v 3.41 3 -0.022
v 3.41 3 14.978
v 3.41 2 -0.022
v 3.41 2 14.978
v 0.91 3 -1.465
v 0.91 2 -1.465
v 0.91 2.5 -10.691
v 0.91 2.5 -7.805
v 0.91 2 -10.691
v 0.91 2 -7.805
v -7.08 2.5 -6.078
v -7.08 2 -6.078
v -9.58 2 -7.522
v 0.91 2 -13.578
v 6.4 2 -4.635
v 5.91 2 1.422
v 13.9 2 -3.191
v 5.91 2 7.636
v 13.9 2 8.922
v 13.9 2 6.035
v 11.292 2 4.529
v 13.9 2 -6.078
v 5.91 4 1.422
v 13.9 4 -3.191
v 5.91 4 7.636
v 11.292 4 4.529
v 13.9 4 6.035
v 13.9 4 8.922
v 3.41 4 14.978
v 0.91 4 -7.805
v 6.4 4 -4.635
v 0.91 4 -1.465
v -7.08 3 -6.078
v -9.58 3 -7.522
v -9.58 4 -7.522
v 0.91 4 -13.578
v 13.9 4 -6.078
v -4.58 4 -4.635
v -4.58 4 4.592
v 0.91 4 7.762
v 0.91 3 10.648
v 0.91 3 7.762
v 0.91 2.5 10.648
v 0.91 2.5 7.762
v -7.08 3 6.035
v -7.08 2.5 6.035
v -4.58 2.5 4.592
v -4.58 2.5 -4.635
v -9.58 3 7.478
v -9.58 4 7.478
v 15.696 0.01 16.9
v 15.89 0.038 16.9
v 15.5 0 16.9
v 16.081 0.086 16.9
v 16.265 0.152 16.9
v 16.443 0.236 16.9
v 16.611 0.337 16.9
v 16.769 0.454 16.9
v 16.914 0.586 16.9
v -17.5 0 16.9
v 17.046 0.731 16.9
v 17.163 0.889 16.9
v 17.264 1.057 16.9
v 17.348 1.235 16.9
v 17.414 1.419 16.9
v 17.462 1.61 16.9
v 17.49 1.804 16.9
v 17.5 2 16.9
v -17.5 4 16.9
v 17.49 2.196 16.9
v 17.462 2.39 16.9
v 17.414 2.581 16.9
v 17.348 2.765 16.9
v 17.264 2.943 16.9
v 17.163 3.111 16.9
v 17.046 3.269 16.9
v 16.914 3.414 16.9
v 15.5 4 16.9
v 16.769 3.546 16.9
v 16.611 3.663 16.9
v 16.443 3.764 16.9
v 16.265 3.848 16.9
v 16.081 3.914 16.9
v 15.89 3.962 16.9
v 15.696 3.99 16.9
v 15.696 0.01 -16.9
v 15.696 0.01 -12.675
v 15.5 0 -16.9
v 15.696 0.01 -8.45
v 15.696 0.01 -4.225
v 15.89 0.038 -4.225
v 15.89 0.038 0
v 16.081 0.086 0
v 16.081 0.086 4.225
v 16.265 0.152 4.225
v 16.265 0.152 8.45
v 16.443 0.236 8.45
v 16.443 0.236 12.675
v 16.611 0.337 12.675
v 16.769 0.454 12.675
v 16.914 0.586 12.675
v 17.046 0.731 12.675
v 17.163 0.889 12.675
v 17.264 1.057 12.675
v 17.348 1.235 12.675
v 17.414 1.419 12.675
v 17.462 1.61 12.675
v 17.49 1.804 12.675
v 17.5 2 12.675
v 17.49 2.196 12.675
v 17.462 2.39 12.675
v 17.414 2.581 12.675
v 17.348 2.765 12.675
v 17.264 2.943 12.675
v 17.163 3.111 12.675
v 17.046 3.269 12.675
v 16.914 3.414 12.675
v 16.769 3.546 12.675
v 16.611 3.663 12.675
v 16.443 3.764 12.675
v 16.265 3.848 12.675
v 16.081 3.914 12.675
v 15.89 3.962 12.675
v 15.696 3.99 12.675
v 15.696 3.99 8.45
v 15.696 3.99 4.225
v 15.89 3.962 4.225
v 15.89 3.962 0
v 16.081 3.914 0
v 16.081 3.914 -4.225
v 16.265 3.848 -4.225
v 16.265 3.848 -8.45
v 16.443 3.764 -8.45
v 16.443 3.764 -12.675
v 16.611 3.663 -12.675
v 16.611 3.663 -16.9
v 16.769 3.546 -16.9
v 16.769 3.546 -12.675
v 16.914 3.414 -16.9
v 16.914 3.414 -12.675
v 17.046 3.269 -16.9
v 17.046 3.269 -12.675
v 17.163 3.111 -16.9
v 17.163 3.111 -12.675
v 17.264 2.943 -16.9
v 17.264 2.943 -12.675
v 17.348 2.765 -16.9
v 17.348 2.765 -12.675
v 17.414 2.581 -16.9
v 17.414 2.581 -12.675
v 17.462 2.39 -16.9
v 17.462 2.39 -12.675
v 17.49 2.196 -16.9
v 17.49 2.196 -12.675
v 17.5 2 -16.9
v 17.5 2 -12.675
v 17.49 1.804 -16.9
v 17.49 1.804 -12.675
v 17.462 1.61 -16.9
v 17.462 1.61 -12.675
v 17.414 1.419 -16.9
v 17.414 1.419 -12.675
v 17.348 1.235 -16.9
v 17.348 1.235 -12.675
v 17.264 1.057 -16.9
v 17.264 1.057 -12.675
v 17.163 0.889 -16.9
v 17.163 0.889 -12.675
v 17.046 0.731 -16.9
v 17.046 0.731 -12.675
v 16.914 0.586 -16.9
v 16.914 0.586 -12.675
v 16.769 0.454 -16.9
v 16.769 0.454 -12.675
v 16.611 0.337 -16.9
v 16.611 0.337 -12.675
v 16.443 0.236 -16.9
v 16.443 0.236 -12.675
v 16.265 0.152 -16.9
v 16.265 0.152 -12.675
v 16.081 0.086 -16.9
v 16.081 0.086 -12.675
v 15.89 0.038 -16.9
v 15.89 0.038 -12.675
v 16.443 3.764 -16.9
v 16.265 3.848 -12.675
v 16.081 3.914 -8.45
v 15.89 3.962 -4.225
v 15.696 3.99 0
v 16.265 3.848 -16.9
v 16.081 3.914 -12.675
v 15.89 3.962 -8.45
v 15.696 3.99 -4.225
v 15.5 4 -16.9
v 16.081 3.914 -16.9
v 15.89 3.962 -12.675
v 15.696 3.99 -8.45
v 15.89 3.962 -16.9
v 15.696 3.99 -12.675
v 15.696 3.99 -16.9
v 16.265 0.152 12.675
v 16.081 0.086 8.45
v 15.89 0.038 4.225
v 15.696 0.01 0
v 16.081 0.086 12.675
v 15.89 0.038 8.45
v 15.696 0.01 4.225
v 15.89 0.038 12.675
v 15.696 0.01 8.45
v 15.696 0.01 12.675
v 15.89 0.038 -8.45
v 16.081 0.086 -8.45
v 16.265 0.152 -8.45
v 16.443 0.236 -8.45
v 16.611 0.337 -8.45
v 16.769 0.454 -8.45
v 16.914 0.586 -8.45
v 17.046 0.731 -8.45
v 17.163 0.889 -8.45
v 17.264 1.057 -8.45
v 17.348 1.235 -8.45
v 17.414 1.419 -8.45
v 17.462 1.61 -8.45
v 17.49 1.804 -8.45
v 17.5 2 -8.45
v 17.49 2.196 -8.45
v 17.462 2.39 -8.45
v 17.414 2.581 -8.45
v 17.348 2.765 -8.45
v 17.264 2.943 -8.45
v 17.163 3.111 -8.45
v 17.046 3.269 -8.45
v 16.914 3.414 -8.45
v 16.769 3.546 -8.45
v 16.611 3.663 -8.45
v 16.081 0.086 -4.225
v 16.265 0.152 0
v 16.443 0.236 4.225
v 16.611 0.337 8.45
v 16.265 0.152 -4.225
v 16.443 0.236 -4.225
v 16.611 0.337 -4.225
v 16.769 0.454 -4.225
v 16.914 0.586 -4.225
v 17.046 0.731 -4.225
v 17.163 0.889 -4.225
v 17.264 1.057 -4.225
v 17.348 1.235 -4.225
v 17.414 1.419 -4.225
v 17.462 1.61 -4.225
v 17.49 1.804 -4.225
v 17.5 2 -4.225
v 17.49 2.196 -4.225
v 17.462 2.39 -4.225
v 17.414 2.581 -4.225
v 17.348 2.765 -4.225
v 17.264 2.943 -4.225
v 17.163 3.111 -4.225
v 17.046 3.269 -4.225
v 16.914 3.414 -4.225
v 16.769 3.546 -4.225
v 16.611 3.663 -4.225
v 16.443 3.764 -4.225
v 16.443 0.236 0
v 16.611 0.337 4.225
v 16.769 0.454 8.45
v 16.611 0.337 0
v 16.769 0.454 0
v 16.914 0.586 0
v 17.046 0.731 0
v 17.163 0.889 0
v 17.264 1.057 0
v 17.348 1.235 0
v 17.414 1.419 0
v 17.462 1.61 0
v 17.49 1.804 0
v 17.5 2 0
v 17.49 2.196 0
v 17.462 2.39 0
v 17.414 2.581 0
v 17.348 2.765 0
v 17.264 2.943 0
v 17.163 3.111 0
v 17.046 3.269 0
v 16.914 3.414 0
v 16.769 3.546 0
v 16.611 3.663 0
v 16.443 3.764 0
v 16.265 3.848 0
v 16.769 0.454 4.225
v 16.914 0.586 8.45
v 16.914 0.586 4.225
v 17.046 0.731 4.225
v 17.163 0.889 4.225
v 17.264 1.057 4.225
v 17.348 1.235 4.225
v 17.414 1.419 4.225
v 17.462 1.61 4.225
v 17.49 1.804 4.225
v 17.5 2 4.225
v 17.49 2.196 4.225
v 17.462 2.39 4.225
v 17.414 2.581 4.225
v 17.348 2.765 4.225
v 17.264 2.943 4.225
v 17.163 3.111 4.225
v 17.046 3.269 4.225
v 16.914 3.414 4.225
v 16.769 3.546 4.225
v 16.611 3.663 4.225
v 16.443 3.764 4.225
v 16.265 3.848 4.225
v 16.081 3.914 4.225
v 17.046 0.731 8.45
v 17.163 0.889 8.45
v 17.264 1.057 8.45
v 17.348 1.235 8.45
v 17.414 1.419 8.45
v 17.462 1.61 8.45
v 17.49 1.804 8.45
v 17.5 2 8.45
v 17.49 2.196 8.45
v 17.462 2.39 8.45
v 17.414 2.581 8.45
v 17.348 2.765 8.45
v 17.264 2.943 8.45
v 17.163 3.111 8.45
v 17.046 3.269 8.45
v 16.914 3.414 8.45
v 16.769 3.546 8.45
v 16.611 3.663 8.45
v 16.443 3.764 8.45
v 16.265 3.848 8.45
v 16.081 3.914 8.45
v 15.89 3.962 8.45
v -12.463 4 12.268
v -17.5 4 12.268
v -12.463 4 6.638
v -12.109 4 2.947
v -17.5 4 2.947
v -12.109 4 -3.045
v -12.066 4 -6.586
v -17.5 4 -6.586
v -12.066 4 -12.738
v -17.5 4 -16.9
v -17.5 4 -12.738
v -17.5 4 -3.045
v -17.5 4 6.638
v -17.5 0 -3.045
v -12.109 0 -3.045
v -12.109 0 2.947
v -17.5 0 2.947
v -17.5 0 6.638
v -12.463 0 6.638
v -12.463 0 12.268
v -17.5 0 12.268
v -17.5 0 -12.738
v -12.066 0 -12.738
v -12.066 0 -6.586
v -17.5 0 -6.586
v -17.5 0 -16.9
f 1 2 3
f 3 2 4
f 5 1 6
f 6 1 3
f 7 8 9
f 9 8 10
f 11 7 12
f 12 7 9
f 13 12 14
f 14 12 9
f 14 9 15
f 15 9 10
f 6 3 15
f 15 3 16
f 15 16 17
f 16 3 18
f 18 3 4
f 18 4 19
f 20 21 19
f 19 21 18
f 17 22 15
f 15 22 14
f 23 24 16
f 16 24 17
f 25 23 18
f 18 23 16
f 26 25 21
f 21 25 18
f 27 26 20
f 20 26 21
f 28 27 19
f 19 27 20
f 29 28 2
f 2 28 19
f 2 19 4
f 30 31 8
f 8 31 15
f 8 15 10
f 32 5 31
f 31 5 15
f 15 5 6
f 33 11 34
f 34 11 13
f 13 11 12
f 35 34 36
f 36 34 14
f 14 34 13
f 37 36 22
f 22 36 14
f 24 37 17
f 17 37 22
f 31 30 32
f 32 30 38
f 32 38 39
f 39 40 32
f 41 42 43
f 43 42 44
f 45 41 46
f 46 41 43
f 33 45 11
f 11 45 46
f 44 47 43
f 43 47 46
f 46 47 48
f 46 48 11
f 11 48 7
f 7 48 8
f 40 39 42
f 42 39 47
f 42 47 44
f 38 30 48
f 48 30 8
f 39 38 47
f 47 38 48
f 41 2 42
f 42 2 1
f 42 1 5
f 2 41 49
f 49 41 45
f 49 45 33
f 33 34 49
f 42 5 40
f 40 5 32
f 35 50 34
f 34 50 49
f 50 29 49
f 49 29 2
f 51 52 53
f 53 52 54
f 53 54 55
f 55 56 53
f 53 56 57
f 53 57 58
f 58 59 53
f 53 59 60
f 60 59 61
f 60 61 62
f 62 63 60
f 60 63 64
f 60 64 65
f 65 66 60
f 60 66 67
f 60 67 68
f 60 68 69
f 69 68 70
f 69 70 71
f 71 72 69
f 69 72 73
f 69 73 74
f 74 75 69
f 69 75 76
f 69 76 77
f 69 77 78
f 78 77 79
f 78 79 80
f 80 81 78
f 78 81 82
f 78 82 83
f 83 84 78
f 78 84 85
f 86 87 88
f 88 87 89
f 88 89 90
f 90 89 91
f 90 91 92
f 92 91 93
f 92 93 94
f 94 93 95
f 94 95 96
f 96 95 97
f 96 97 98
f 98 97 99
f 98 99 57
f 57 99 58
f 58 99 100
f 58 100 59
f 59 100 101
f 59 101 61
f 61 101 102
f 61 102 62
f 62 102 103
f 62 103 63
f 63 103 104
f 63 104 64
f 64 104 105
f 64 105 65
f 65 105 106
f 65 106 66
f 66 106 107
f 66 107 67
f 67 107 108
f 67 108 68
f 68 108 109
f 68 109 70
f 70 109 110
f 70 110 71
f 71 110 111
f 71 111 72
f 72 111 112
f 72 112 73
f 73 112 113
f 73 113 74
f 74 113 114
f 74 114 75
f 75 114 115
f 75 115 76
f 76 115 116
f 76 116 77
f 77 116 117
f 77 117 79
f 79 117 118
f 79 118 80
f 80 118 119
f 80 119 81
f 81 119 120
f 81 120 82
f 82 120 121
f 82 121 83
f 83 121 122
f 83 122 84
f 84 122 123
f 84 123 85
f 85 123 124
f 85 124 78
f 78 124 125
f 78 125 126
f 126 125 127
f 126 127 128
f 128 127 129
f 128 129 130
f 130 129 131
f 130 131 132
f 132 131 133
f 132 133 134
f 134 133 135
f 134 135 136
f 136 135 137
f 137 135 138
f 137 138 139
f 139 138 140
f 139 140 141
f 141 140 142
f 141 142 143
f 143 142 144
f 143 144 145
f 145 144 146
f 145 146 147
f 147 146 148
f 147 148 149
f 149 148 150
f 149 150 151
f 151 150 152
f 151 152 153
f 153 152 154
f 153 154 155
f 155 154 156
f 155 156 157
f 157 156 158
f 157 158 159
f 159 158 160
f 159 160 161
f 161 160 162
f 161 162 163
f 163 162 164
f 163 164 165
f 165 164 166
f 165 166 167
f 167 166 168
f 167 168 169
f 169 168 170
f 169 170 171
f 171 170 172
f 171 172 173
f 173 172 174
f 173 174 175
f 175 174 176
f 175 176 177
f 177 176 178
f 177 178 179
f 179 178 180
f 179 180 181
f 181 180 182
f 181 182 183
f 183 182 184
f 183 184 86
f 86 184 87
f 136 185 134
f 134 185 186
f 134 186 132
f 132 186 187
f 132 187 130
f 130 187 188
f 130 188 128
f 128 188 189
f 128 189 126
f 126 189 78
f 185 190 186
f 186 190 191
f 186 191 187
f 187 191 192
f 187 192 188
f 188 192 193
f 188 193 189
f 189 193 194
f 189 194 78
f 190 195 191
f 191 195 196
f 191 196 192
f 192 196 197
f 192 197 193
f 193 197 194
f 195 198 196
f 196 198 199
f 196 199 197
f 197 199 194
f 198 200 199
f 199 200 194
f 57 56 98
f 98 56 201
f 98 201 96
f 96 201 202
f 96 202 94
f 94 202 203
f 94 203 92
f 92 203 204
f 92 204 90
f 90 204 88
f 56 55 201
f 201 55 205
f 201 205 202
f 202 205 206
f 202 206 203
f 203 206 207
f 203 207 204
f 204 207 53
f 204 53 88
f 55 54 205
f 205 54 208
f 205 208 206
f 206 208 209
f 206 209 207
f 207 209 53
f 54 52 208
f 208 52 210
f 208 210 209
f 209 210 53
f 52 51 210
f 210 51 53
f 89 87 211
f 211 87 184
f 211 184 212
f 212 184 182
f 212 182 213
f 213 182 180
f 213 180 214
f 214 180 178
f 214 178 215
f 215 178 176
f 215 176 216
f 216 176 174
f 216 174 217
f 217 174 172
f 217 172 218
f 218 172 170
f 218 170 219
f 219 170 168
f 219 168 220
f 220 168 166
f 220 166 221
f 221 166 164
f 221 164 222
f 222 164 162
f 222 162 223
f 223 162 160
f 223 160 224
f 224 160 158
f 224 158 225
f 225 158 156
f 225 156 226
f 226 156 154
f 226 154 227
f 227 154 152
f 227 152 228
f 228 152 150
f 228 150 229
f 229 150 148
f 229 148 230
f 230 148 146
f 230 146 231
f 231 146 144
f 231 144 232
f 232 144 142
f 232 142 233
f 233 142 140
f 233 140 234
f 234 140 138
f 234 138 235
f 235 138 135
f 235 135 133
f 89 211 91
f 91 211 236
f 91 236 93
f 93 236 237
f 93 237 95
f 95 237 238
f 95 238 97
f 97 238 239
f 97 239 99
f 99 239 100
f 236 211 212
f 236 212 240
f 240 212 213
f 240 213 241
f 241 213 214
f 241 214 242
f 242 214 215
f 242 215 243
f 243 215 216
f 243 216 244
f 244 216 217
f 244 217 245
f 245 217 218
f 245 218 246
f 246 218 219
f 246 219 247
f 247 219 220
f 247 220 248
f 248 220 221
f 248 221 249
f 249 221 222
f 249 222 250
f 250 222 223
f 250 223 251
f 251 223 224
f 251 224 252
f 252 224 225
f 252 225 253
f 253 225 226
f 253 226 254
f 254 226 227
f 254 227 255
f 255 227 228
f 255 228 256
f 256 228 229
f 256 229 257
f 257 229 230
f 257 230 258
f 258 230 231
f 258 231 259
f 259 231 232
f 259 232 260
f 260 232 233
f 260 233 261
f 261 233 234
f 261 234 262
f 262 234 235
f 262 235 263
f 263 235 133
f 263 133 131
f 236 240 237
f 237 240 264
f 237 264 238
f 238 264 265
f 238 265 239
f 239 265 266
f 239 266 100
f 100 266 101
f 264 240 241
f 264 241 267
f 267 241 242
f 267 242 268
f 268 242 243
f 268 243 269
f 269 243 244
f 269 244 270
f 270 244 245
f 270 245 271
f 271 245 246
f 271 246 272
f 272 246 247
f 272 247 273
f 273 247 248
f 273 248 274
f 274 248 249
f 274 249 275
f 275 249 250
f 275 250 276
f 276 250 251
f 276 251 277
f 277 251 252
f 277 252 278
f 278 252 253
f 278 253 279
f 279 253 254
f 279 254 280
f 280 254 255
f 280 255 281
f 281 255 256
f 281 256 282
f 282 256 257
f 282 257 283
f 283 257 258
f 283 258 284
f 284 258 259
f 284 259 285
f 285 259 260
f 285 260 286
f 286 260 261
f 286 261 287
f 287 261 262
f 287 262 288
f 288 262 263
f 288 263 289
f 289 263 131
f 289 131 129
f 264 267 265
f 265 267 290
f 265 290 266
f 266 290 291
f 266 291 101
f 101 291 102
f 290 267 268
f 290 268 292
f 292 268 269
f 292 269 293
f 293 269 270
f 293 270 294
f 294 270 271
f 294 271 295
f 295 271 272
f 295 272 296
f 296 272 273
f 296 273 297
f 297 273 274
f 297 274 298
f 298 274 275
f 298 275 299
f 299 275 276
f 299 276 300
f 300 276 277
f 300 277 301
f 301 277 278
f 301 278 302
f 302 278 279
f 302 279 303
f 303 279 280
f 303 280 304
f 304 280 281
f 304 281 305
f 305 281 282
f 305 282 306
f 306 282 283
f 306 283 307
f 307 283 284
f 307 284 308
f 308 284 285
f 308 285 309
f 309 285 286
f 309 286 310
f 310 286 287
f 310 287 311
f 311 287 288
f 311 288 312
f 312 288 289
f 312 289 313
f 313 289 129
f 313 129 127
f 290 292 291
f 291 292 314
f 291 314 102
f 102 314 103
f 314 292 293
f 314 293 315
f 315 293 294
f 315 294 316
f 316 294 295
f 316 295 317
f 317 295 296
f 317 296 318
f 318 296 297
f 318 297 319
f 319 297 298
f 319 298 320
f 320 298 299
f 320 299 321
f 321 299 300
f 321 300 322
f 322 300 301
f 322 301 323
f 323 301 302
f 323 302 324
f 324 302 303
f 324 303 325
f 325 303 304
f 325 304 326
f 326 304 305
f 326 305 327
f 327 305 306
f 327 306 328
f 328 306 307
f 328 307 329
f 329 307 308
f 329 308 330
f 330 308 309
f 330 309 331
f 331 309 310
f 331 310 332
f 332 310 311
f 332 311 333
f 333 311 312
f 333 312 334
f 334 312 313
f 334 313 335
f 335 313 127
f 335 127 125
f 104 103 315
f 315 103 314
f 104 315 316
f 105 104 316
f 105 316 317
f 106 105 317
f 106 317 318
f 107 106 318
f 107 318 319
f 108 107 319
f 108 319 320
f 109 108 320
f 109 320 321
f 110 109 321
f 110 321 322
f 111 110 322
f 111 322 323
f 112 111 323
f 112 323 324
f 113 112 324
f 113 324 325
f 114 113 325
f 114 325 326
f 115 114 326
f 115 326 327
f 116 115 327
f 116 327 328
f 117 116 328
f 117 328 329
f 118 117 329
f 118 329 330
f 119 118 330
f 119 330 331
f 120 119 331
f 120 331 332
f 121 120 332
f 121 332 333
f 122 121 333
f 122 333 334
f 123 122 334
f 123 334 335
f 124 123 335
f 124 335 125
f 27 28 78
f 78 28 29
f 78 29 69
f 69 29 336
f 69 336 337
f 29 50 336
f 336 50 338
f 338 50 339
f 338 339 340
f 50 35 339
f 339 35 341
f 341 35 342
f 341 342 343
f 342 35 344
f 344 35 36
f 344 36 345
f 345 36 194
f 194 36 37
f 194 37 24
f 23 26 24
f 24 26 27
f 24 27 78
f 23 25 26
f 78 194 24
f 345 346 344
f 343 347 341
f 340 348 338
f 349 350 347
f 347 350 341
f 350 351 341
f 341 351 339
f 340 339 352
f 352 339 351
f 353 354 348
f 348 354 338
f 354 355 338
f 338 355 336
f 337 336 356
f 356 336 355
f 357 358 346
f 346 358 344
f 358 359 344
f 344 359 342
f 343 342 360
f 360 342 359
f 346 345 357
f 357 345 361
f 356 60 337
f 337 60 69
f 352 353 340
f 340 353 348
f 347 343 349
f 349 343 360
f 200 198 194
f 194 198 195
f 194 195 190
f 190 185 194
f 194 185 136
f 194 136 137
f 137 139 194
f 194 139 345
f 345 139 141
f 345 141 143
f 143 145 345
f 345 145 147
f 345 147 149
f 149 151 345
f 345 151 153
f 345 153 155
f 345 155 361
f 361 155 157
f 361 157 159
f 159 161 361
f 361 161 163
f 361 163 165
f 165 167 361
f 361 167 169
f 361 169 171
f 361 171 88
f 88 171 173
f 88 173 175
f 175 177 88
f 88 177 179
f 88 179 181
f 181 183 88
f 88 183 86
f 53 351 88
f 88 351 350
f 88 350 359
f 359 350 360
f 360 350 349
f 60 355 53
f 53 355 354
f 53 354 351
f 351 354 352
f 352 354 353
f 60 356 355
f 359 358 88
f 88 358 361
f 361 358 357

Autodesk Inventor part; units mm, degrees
ref_plane "YZ Plane" through (0, 0, 0) normal (1, 0, 0) x (0, 1, 0)
ref_plane "XZ Plane" through (0, 0, 0) normal (0, 1, 0) x (-1, 0, 0)
ref_plane "XY Plane" through (0, 0, 0) normal (0, 0, 1) x (1, 0, 0)
sketch "Sketch1" plane through (0, 0, 0) normal (0, 1, 0) x (-1, 0, 0)
  line L0 (-17.5, 16.9) -> (17.5, 16.9)
  line L1 (17.5, 16.9) -> (17.5, -16.9)
  line L2 (17.5, -16.9) -> (-17.5, -16.9)
  line L3 (-17.5, -16.9) -> (-17.5, 16.9)
  line L4 (-17.5, 16.9) -> (17.5, -16.9) construction
  line L5 (17.5, 16.9) -> (-17.5, -16.9) construction
  point P0 (0, 0)
sketch "Sketch2" plane through (0, 0, 0) normal (0, 1, 0) x (-1, 0, 0)
  line L0 (980.2308, 0) -> (977.7308, 0)
  line L1 (17.4632, -0.049) -> (15.105, -0.049)
  line L2 (12.1095, 2.9465) -> (18.1005, 2.9465)
  line L3 (18.1005, 2.9465) -> (18.1005, -3.0446)
  line L4 (18.1005, -3.0446) -> (12.1095, -3.0446)
  line L5 (12.1095, -3.0446) -> (12.1095, 2.9465)
  line L6 (12.1095, 2.9465) -> (18.1005, -3.0446) construction
  line L7 (18.1005, 2.9465) -> (12.1095, -3.0446) construction
  line L8 (12.4632, 12.2678) -> (18.1005, 12.2678)
  line L9 (18.1005, 12.2678) -> (18.1005, 6.638)
  line L10 (18.1005, 6.638) -> (12.4632, 6.638)
  line L11 (12.4632, 6.638) -> (12.4632, 12.2678)
  line L12 (12.4632, 12.2678) -> (18.1005, 6.638) construction
  line L13 (12.0658, -6.5864) -> (18.1005, -6.5864)
  line L14 (18.1005, -6.5864) -> (18.1005, -12.7382)
  line L15 (18.1005, -12.7382) -> (12.0658, -12.7382)
  line L16 (12.0658, -12.7382) -> (12.0658, -6.5864)
  line L17 (12.0658, -6.5864) -> (18.1005, -12.7382) construction
  line L18 (18.1005, -6.5864) -> (12.0658, -12.7382) construction
  point P0 (0, 0)
  dimension "d2" = 2.5
extrude "Extrusion1" add sketch "Sketch1" along normal blind 4
extrude "Extrusion2" cut sketch "Sketch2" along normal blind 4
fillet "Fillet3" radius 2 1 edges at (17.5, 4, 0)
fillet "Fillet4" radius 2 1 edges at (17.5, 0, 0)
sketch "Sketch3" plane through (0, 4, 0) normal (0, 1, 0) x (1, 0, 0)
  line L0 (-17.5, 3.0446) -> (-12.1095, 3.0446) construction
  line L1 (-12.1095, 3.0446) -> (-12.1095, -2.9465) construction
  line L2 (-12.1095, -2.9465) -> (-17.5, -2.9465) construction
  line L3 (-17.5, -2.9465) -> (-17.5, -6.638) construction
  line L4 (-17.5, -6.638) -> (-12.4632, -6.638) construction
  line L5 (-12.4632, -6.638) -> (-12.4632, -12.2678) construction
  line L6 (-12.4632, -12.2678) -> (-17.5, -12.2678) construction
  line L7 (-17.5, -12.2678) -> (-17.5, -16.9) construction
  line L8 (-17.5, -16.9) -> (15.5, -16.9) construction
  line L9 (15.5, 16.9) -> (-17.5, 16.9) construction
  line L10 (-17.5, 16.9) -> (-17.5, 12.7382) construction
  line L11 (-17.5, 12.7382) -> (-12.0658, 12.7382) construction
  line L12 (-12.0658, 12.7382) -> (-12.0658, 6.5864) construction
  line L13 (-12.0658, 6.5864) -> (-17.5, 6.5864) construction
  line L14 (-17.5, 6.5864) -> (-17.5, 3.0446) construction
  line L15 (-12.1095, 0.049) -> (15.5, 0) construction
  line L16 (-17.5, 16.9) -> (17.5, 16.9) construction
  line L17 (17.5, -16.9) -> (-17.5, -16.9) construction
  line L18 (-9.5803, 7.5215) -> (-9.5803, -7.4785)
  line L19 (-9.5803, -7.4785) -> (3.41, -14.9785)
  line L20 (-9.5803, 7.5215) -> (-7.0803, 6.0781)
  line L21 (-7.0803, 6.0781) -> (-7.0803, -6.0352)
  line L22 (-7.0803, -6.0352) -> (0.91, -10.6484)
  line L23 (0.91, -10.6484) -> (0.91, 1.4648)
  line L24 (0.91, 1.4648) -> (3.41, 0.0215)
  line L25 (3.41, 0.0215) -> (3.41, -14.9785)
  line L26 (15.5, 16.9) -> (15.5, -16.9) projected
  line L27 (3.41, 16.9) -> (3.41, -16.9) construction
  line L28 (-17.5, -16.9) -> (15.5, -16.9) construction
  line L29 (15.5, 16.9) -> (15.5, 16.9) construction
  line L30 (15.5, 16.9) -> (15.5, -16.9) construction
  line L31 (15.5, -16.9) -> (15.5, -16.9) construction
  line L32 (15.5, -16.9) -> (15.5, 16.9) construction
  dimension "d23" = 2.5
  dimension "d24" = 2.5
  dimension "d25" = 2.5
  dimension "d26" = 15
  dimension "d28" = 15
emboss "Emboss1" sketch "Sketch3" operation cut depth 1 direction (0, -1, 0)
sketch "Sketch4" plane through (0, 4, 0) normal (0, 1, 0) x (1, 0, 0)
  line L0 (-9.5803, 7.5215) -> (-7.0803, 6.0781) construction
  line L1 (-7.0803, 6.0781) -> (-7.0803, -6.0352) construction
  line L2 (-7.0803, -6.0352) -> (0.91, -10.6484) construction
  line L3 (0.91, -10.6484) -> (0.91, 1.4648) construction
  line L4 (0.91, 1.4648) -> (3.41, 0.0215) construction
  line L5 (3.41, 0.0215) -> (3.41, -14.9785) construction
  line L6 (3.41, -14.9785) -> (-9.5803, -7.4785) construction
  line L7 (-9.5803, -7.4785) -> (-9.5803, 7.5215) construction
  line L8 (15.5, 16.9) -> (15.5, -16.9) construction
  line L9 (15.5, 16.9) -> (-17.5, 16.9) construction
  line L10 (-17.5, 16.9) -> (-17.5, 12.7382) construction
  line L11 (-17.5, 12.7382) -> (-12.0658, 12.7382) construction
  line L12 (-12.0658, 12.7382) -> (-12.0658, 6.5864) construction
  line L13 (-12.0658, 6.5864) -> (-17.5, 6.5864) construction
  line L14 (-17.5, 6.5864) -> (-17.5, 3.0446) construction
  line L15 (-17.5, 3.0446) -> (-12.1095, 3.0446) construction
  line L16 (-12.1095, 3.0446) -> (-12.1095, -2.9465) construction
  line L17 (-12.1095, -2.9465) -> (-17.5, -2.9465) construction
  line L18 (-17.5, -2.9465) -> (-17.5, -6.638) construction
  line L19 (-17.5, -6.638) -> (-12.4632, -6.638) construction
  line L20 (-12.4632, -6.638) -> (-12.4632, -12.2678) construction
  line L21 (-12.4632, -12.2678) -> (-17.5, -12.2678) construction
  line L22 (-17.5, -12.2678) -> (-17.5, -16.9) construction
  line L23 (-17.5, -16.9) -> (15.5, -16.9) construction
  line L24 (-12.1095, 0.049) -> (15.5, 0) construction
  line L25 (15.5, -16.9) -> (15.5, 16.9) construction
  line L26 (0.91, 16.9) -> (0.91, -16.9) construction
  line L27 (15.5, -16.9) -> (-17.5, -16.9) construction
  line L28 (0.91, -10.6484) -> (0.91, 1.4648) construction
  line L29 (-7.0803, 6.0781) -> (-7.0803, -6.0352) projected
  line L30 (-7.0803, -6.0352) -> (0.91, -10.6484) projected
  line L31 (-7.0803, 6.0781) -> (-7.0803, -6.0352)
  line L32 (-7.0803, -6.0352) -> (0.91, -10.6484)
  line L33 (0.91, -10.6484) -> (0.91, -7.7617)
  line L34 (0.91, -10.6484) -> (0.91, 1.4648) projected
  line L35 (0.91, -7.7617) -> (-4.5803, -4.5918)
  line L36 (-4.5803, -4.5918) -> (-4.5803, 4.6347)
  line L37 (-4.5803, 4.6347) -> (0.91, 7.8046)
  line L38 (-7.0803, 6.0781) -> (0.91, 10.6913)
  line L39 (0.91, 10.6913) -> (0.91, 7.8046)
  point P0 (0, 0)
  dimension "d29" = 120
  dimension "d30" = 2.5
  dimension "d31" = 2.5
  dimension "d32" = 2.5
emboss "Emboss2" sketch "Sketch4" operation cut depth 1.5 direction (0, -1, 0)
sketch "Sketch5" plane through (0, 4, 0) normal (0, 1, 0) x (1, 0, 0)
  line L0 (-4.5803, -4.5918) -> (0.91, -7.7617) construction
  line L1 (0.91, -7.7617) -> (0.91, 1.4648) construction
  line L2 (0.91, 1.4648) -> (3.41, 0.0215) construction
  line L3 (3.41, 0.0215) -> (3.41, -14.9785) construction
  line L4 (3.41, -14.9785) -> (-9.5803, -7.4785) construction
  line L5 (-9.5803, -7.4785) -> (-9.5803, 7.5215) construction
  line L6 (-9.5803, 7.5215) -> (-7.0803, 6.0781) construction
  line L7 (-7.0803, 6.0781) -> (0.91, 10.6913) construction
  line L8 (0.91, 10.6913) -> (0.91, 7.8046) construction
  line L9 (0.91, 7.8046) -> (-4.5803, 4.6347) construction
  line L10 (-4.5803, 4.6347) -> (-4.5803, -4.5918) construction
  line L11 (15.5, 16.9) -> (15.5, -16.9) construction
  line L12 (15.5, 16.9) -> (-17.5, 16.9) construction
  line L13 (-17.5, 16.9) -> (-17.5, 12.7382) construction
  line L14 (-17.5, 12.7382) -> (-12.0658, 12.7382) construction
  line L15 (-12.0658, 12.7382) -> (-12.0658, 6.5864) construction
  line L16 (-12.0658, 6.5864) -> (-17.5, 6.5864) construction
  line L17 (-17.5, 6.5864) -> (-17.5, 3.0446) construction
  line L18 (-17.5, 3.0446) -> (-12.1095, 3.0446) construction
  line L19 (-12.1095, 3.0446) -> (-12.1095, -2.9465) construction
  line L20 (-12.1095, -2.9465) -> (-17.5, -2.9465) construction
  line L21 (-17.5, -2.9465) -> (-17.5, -6.638) construction
  line L22 (-17.5, -6.638) -> (-12.4632, -6.638) construction
  line L23 (-12.4632, -6.638) -> (-12.4632, -12.2678) construction
  line L24 (-12.4632, -12.2678) -> (-17.5, -12.2678) construction
  line L25 (-17.5, -12.2678) -> (-17.5, -16.9) construction
  line L26 (-17.5, -16.9) -> (15.5, -16.9) construction
  line L27 (-7.0803, 6.0781) -> (0.91, 10.6913) projected
  line L28 (-9.5803, 7.5215) -> (-7.0803, 6.0781)
  line L29 (-7.0803, 6.0781) -> (0.91, 10.6913)
  line L30 (0.91, 10.6913) -> (0.91, 7.8046)
  line L31 (0.91, 10.6913) -> (0.91, 7.8046) projected
  line L32 (0.91, 16.9) -> (0.91, -16.9) construction
  line L33 (0.91, -7.7617) -> (0.91, 1.4648) construction
  line L34 (-9.5803, 7.5215) -> (0.91, 13.5781)
  line L35 (0.91, 13.5781) -> (13.9004, 6.0781)
  line L36 (13.9004, 6.0781) -> (13.9004, 3.1913)
  line L37 (13.9004, 3.1913) -> (5.91, -1.4219)
  line L38 (5.91, -1.4219) -> (5.91, -7.6363)
  line L39 (5.91, -7.6363) -> (11.2919, -4.5291)
  line L40 (13.9004, -6.0352) -> (13.9004, -8.9219)
  line L41 (3.41, -14.9785) -> (-9.5803, -7.4785) projected
  line L42 (13.9004, -8.9219) -> (3.41, -14.9785)
  line L43 (0.91, 1.4648) -> (3.41, 0.0215) projected
  line L44 (3.41, -14.9785) -> (3.41, 0.0215)
  line L45 (3.41, 0.0215) -> (0.91, 1.4648)
  line L46 (0.91, 7.8046) -> (-4.5803, 4.6347) projected
  line L47 (0.91, 7.8046) -> (0.91, 10.6913)
  line L48 (3.41, 0.0215) -> (3.41, -14.9785) projected
  line L49 (0.91, 1.4648) -> (6.4004, 4.6347)
  line L50 (6.4004, 4.6347) -> (0.91, 7.8046)
  line L51 (13.9004, -6.0352) -> (11.2919, -4.5291)
  line L52 (-7.1521, -6.1594) -> (3.41, -12.0918) construction
  line L53 (-4.5803, -4.5918) -> (0.91, -7.7617) construction
  line L54 (-4.5803, -4.5918) -> (3.41, -9.0797) construction
  line L55 (3.41, -9.0797) -> (14.5341, -2.6572) construction
  line L56 (3.41, 0.0215) -> (13.9004, 6.0781) construction
  line L57 (3.41, -12.0918) -> (19.1495, -3.0046) construction
  line L58 (6.4004, 4.6347) -> (9.227, 5.8895) construction
  line L59 (0.91, 10.6913) -> (0.91, 7.8046) construction
  line L60 (9.227, 5.8895) -> (0.91, 10.6913) construction
  point P0 (0, 0)
  dimension "d35" = 60
  dimension "d36" = 2.5
  dimension "d39" = 120
  dimension "d42" = 120
  dimension "d43" = 2.5
emboss "Emboss3" sketch "Sketch5" operation cut depth 2 direction (0, -1, 0)
equation "\"d24\" = d23"
equation "\"d25\" = d23"
equation "\"d28\" = d26"
equation "\"d30\" = d23"
equation "\"d31\" = d23"
equation "\"d32\" = d23"
equation "\"d36\" = d23"
equation "\"d43\" = d23"
properties part number "schablone"
